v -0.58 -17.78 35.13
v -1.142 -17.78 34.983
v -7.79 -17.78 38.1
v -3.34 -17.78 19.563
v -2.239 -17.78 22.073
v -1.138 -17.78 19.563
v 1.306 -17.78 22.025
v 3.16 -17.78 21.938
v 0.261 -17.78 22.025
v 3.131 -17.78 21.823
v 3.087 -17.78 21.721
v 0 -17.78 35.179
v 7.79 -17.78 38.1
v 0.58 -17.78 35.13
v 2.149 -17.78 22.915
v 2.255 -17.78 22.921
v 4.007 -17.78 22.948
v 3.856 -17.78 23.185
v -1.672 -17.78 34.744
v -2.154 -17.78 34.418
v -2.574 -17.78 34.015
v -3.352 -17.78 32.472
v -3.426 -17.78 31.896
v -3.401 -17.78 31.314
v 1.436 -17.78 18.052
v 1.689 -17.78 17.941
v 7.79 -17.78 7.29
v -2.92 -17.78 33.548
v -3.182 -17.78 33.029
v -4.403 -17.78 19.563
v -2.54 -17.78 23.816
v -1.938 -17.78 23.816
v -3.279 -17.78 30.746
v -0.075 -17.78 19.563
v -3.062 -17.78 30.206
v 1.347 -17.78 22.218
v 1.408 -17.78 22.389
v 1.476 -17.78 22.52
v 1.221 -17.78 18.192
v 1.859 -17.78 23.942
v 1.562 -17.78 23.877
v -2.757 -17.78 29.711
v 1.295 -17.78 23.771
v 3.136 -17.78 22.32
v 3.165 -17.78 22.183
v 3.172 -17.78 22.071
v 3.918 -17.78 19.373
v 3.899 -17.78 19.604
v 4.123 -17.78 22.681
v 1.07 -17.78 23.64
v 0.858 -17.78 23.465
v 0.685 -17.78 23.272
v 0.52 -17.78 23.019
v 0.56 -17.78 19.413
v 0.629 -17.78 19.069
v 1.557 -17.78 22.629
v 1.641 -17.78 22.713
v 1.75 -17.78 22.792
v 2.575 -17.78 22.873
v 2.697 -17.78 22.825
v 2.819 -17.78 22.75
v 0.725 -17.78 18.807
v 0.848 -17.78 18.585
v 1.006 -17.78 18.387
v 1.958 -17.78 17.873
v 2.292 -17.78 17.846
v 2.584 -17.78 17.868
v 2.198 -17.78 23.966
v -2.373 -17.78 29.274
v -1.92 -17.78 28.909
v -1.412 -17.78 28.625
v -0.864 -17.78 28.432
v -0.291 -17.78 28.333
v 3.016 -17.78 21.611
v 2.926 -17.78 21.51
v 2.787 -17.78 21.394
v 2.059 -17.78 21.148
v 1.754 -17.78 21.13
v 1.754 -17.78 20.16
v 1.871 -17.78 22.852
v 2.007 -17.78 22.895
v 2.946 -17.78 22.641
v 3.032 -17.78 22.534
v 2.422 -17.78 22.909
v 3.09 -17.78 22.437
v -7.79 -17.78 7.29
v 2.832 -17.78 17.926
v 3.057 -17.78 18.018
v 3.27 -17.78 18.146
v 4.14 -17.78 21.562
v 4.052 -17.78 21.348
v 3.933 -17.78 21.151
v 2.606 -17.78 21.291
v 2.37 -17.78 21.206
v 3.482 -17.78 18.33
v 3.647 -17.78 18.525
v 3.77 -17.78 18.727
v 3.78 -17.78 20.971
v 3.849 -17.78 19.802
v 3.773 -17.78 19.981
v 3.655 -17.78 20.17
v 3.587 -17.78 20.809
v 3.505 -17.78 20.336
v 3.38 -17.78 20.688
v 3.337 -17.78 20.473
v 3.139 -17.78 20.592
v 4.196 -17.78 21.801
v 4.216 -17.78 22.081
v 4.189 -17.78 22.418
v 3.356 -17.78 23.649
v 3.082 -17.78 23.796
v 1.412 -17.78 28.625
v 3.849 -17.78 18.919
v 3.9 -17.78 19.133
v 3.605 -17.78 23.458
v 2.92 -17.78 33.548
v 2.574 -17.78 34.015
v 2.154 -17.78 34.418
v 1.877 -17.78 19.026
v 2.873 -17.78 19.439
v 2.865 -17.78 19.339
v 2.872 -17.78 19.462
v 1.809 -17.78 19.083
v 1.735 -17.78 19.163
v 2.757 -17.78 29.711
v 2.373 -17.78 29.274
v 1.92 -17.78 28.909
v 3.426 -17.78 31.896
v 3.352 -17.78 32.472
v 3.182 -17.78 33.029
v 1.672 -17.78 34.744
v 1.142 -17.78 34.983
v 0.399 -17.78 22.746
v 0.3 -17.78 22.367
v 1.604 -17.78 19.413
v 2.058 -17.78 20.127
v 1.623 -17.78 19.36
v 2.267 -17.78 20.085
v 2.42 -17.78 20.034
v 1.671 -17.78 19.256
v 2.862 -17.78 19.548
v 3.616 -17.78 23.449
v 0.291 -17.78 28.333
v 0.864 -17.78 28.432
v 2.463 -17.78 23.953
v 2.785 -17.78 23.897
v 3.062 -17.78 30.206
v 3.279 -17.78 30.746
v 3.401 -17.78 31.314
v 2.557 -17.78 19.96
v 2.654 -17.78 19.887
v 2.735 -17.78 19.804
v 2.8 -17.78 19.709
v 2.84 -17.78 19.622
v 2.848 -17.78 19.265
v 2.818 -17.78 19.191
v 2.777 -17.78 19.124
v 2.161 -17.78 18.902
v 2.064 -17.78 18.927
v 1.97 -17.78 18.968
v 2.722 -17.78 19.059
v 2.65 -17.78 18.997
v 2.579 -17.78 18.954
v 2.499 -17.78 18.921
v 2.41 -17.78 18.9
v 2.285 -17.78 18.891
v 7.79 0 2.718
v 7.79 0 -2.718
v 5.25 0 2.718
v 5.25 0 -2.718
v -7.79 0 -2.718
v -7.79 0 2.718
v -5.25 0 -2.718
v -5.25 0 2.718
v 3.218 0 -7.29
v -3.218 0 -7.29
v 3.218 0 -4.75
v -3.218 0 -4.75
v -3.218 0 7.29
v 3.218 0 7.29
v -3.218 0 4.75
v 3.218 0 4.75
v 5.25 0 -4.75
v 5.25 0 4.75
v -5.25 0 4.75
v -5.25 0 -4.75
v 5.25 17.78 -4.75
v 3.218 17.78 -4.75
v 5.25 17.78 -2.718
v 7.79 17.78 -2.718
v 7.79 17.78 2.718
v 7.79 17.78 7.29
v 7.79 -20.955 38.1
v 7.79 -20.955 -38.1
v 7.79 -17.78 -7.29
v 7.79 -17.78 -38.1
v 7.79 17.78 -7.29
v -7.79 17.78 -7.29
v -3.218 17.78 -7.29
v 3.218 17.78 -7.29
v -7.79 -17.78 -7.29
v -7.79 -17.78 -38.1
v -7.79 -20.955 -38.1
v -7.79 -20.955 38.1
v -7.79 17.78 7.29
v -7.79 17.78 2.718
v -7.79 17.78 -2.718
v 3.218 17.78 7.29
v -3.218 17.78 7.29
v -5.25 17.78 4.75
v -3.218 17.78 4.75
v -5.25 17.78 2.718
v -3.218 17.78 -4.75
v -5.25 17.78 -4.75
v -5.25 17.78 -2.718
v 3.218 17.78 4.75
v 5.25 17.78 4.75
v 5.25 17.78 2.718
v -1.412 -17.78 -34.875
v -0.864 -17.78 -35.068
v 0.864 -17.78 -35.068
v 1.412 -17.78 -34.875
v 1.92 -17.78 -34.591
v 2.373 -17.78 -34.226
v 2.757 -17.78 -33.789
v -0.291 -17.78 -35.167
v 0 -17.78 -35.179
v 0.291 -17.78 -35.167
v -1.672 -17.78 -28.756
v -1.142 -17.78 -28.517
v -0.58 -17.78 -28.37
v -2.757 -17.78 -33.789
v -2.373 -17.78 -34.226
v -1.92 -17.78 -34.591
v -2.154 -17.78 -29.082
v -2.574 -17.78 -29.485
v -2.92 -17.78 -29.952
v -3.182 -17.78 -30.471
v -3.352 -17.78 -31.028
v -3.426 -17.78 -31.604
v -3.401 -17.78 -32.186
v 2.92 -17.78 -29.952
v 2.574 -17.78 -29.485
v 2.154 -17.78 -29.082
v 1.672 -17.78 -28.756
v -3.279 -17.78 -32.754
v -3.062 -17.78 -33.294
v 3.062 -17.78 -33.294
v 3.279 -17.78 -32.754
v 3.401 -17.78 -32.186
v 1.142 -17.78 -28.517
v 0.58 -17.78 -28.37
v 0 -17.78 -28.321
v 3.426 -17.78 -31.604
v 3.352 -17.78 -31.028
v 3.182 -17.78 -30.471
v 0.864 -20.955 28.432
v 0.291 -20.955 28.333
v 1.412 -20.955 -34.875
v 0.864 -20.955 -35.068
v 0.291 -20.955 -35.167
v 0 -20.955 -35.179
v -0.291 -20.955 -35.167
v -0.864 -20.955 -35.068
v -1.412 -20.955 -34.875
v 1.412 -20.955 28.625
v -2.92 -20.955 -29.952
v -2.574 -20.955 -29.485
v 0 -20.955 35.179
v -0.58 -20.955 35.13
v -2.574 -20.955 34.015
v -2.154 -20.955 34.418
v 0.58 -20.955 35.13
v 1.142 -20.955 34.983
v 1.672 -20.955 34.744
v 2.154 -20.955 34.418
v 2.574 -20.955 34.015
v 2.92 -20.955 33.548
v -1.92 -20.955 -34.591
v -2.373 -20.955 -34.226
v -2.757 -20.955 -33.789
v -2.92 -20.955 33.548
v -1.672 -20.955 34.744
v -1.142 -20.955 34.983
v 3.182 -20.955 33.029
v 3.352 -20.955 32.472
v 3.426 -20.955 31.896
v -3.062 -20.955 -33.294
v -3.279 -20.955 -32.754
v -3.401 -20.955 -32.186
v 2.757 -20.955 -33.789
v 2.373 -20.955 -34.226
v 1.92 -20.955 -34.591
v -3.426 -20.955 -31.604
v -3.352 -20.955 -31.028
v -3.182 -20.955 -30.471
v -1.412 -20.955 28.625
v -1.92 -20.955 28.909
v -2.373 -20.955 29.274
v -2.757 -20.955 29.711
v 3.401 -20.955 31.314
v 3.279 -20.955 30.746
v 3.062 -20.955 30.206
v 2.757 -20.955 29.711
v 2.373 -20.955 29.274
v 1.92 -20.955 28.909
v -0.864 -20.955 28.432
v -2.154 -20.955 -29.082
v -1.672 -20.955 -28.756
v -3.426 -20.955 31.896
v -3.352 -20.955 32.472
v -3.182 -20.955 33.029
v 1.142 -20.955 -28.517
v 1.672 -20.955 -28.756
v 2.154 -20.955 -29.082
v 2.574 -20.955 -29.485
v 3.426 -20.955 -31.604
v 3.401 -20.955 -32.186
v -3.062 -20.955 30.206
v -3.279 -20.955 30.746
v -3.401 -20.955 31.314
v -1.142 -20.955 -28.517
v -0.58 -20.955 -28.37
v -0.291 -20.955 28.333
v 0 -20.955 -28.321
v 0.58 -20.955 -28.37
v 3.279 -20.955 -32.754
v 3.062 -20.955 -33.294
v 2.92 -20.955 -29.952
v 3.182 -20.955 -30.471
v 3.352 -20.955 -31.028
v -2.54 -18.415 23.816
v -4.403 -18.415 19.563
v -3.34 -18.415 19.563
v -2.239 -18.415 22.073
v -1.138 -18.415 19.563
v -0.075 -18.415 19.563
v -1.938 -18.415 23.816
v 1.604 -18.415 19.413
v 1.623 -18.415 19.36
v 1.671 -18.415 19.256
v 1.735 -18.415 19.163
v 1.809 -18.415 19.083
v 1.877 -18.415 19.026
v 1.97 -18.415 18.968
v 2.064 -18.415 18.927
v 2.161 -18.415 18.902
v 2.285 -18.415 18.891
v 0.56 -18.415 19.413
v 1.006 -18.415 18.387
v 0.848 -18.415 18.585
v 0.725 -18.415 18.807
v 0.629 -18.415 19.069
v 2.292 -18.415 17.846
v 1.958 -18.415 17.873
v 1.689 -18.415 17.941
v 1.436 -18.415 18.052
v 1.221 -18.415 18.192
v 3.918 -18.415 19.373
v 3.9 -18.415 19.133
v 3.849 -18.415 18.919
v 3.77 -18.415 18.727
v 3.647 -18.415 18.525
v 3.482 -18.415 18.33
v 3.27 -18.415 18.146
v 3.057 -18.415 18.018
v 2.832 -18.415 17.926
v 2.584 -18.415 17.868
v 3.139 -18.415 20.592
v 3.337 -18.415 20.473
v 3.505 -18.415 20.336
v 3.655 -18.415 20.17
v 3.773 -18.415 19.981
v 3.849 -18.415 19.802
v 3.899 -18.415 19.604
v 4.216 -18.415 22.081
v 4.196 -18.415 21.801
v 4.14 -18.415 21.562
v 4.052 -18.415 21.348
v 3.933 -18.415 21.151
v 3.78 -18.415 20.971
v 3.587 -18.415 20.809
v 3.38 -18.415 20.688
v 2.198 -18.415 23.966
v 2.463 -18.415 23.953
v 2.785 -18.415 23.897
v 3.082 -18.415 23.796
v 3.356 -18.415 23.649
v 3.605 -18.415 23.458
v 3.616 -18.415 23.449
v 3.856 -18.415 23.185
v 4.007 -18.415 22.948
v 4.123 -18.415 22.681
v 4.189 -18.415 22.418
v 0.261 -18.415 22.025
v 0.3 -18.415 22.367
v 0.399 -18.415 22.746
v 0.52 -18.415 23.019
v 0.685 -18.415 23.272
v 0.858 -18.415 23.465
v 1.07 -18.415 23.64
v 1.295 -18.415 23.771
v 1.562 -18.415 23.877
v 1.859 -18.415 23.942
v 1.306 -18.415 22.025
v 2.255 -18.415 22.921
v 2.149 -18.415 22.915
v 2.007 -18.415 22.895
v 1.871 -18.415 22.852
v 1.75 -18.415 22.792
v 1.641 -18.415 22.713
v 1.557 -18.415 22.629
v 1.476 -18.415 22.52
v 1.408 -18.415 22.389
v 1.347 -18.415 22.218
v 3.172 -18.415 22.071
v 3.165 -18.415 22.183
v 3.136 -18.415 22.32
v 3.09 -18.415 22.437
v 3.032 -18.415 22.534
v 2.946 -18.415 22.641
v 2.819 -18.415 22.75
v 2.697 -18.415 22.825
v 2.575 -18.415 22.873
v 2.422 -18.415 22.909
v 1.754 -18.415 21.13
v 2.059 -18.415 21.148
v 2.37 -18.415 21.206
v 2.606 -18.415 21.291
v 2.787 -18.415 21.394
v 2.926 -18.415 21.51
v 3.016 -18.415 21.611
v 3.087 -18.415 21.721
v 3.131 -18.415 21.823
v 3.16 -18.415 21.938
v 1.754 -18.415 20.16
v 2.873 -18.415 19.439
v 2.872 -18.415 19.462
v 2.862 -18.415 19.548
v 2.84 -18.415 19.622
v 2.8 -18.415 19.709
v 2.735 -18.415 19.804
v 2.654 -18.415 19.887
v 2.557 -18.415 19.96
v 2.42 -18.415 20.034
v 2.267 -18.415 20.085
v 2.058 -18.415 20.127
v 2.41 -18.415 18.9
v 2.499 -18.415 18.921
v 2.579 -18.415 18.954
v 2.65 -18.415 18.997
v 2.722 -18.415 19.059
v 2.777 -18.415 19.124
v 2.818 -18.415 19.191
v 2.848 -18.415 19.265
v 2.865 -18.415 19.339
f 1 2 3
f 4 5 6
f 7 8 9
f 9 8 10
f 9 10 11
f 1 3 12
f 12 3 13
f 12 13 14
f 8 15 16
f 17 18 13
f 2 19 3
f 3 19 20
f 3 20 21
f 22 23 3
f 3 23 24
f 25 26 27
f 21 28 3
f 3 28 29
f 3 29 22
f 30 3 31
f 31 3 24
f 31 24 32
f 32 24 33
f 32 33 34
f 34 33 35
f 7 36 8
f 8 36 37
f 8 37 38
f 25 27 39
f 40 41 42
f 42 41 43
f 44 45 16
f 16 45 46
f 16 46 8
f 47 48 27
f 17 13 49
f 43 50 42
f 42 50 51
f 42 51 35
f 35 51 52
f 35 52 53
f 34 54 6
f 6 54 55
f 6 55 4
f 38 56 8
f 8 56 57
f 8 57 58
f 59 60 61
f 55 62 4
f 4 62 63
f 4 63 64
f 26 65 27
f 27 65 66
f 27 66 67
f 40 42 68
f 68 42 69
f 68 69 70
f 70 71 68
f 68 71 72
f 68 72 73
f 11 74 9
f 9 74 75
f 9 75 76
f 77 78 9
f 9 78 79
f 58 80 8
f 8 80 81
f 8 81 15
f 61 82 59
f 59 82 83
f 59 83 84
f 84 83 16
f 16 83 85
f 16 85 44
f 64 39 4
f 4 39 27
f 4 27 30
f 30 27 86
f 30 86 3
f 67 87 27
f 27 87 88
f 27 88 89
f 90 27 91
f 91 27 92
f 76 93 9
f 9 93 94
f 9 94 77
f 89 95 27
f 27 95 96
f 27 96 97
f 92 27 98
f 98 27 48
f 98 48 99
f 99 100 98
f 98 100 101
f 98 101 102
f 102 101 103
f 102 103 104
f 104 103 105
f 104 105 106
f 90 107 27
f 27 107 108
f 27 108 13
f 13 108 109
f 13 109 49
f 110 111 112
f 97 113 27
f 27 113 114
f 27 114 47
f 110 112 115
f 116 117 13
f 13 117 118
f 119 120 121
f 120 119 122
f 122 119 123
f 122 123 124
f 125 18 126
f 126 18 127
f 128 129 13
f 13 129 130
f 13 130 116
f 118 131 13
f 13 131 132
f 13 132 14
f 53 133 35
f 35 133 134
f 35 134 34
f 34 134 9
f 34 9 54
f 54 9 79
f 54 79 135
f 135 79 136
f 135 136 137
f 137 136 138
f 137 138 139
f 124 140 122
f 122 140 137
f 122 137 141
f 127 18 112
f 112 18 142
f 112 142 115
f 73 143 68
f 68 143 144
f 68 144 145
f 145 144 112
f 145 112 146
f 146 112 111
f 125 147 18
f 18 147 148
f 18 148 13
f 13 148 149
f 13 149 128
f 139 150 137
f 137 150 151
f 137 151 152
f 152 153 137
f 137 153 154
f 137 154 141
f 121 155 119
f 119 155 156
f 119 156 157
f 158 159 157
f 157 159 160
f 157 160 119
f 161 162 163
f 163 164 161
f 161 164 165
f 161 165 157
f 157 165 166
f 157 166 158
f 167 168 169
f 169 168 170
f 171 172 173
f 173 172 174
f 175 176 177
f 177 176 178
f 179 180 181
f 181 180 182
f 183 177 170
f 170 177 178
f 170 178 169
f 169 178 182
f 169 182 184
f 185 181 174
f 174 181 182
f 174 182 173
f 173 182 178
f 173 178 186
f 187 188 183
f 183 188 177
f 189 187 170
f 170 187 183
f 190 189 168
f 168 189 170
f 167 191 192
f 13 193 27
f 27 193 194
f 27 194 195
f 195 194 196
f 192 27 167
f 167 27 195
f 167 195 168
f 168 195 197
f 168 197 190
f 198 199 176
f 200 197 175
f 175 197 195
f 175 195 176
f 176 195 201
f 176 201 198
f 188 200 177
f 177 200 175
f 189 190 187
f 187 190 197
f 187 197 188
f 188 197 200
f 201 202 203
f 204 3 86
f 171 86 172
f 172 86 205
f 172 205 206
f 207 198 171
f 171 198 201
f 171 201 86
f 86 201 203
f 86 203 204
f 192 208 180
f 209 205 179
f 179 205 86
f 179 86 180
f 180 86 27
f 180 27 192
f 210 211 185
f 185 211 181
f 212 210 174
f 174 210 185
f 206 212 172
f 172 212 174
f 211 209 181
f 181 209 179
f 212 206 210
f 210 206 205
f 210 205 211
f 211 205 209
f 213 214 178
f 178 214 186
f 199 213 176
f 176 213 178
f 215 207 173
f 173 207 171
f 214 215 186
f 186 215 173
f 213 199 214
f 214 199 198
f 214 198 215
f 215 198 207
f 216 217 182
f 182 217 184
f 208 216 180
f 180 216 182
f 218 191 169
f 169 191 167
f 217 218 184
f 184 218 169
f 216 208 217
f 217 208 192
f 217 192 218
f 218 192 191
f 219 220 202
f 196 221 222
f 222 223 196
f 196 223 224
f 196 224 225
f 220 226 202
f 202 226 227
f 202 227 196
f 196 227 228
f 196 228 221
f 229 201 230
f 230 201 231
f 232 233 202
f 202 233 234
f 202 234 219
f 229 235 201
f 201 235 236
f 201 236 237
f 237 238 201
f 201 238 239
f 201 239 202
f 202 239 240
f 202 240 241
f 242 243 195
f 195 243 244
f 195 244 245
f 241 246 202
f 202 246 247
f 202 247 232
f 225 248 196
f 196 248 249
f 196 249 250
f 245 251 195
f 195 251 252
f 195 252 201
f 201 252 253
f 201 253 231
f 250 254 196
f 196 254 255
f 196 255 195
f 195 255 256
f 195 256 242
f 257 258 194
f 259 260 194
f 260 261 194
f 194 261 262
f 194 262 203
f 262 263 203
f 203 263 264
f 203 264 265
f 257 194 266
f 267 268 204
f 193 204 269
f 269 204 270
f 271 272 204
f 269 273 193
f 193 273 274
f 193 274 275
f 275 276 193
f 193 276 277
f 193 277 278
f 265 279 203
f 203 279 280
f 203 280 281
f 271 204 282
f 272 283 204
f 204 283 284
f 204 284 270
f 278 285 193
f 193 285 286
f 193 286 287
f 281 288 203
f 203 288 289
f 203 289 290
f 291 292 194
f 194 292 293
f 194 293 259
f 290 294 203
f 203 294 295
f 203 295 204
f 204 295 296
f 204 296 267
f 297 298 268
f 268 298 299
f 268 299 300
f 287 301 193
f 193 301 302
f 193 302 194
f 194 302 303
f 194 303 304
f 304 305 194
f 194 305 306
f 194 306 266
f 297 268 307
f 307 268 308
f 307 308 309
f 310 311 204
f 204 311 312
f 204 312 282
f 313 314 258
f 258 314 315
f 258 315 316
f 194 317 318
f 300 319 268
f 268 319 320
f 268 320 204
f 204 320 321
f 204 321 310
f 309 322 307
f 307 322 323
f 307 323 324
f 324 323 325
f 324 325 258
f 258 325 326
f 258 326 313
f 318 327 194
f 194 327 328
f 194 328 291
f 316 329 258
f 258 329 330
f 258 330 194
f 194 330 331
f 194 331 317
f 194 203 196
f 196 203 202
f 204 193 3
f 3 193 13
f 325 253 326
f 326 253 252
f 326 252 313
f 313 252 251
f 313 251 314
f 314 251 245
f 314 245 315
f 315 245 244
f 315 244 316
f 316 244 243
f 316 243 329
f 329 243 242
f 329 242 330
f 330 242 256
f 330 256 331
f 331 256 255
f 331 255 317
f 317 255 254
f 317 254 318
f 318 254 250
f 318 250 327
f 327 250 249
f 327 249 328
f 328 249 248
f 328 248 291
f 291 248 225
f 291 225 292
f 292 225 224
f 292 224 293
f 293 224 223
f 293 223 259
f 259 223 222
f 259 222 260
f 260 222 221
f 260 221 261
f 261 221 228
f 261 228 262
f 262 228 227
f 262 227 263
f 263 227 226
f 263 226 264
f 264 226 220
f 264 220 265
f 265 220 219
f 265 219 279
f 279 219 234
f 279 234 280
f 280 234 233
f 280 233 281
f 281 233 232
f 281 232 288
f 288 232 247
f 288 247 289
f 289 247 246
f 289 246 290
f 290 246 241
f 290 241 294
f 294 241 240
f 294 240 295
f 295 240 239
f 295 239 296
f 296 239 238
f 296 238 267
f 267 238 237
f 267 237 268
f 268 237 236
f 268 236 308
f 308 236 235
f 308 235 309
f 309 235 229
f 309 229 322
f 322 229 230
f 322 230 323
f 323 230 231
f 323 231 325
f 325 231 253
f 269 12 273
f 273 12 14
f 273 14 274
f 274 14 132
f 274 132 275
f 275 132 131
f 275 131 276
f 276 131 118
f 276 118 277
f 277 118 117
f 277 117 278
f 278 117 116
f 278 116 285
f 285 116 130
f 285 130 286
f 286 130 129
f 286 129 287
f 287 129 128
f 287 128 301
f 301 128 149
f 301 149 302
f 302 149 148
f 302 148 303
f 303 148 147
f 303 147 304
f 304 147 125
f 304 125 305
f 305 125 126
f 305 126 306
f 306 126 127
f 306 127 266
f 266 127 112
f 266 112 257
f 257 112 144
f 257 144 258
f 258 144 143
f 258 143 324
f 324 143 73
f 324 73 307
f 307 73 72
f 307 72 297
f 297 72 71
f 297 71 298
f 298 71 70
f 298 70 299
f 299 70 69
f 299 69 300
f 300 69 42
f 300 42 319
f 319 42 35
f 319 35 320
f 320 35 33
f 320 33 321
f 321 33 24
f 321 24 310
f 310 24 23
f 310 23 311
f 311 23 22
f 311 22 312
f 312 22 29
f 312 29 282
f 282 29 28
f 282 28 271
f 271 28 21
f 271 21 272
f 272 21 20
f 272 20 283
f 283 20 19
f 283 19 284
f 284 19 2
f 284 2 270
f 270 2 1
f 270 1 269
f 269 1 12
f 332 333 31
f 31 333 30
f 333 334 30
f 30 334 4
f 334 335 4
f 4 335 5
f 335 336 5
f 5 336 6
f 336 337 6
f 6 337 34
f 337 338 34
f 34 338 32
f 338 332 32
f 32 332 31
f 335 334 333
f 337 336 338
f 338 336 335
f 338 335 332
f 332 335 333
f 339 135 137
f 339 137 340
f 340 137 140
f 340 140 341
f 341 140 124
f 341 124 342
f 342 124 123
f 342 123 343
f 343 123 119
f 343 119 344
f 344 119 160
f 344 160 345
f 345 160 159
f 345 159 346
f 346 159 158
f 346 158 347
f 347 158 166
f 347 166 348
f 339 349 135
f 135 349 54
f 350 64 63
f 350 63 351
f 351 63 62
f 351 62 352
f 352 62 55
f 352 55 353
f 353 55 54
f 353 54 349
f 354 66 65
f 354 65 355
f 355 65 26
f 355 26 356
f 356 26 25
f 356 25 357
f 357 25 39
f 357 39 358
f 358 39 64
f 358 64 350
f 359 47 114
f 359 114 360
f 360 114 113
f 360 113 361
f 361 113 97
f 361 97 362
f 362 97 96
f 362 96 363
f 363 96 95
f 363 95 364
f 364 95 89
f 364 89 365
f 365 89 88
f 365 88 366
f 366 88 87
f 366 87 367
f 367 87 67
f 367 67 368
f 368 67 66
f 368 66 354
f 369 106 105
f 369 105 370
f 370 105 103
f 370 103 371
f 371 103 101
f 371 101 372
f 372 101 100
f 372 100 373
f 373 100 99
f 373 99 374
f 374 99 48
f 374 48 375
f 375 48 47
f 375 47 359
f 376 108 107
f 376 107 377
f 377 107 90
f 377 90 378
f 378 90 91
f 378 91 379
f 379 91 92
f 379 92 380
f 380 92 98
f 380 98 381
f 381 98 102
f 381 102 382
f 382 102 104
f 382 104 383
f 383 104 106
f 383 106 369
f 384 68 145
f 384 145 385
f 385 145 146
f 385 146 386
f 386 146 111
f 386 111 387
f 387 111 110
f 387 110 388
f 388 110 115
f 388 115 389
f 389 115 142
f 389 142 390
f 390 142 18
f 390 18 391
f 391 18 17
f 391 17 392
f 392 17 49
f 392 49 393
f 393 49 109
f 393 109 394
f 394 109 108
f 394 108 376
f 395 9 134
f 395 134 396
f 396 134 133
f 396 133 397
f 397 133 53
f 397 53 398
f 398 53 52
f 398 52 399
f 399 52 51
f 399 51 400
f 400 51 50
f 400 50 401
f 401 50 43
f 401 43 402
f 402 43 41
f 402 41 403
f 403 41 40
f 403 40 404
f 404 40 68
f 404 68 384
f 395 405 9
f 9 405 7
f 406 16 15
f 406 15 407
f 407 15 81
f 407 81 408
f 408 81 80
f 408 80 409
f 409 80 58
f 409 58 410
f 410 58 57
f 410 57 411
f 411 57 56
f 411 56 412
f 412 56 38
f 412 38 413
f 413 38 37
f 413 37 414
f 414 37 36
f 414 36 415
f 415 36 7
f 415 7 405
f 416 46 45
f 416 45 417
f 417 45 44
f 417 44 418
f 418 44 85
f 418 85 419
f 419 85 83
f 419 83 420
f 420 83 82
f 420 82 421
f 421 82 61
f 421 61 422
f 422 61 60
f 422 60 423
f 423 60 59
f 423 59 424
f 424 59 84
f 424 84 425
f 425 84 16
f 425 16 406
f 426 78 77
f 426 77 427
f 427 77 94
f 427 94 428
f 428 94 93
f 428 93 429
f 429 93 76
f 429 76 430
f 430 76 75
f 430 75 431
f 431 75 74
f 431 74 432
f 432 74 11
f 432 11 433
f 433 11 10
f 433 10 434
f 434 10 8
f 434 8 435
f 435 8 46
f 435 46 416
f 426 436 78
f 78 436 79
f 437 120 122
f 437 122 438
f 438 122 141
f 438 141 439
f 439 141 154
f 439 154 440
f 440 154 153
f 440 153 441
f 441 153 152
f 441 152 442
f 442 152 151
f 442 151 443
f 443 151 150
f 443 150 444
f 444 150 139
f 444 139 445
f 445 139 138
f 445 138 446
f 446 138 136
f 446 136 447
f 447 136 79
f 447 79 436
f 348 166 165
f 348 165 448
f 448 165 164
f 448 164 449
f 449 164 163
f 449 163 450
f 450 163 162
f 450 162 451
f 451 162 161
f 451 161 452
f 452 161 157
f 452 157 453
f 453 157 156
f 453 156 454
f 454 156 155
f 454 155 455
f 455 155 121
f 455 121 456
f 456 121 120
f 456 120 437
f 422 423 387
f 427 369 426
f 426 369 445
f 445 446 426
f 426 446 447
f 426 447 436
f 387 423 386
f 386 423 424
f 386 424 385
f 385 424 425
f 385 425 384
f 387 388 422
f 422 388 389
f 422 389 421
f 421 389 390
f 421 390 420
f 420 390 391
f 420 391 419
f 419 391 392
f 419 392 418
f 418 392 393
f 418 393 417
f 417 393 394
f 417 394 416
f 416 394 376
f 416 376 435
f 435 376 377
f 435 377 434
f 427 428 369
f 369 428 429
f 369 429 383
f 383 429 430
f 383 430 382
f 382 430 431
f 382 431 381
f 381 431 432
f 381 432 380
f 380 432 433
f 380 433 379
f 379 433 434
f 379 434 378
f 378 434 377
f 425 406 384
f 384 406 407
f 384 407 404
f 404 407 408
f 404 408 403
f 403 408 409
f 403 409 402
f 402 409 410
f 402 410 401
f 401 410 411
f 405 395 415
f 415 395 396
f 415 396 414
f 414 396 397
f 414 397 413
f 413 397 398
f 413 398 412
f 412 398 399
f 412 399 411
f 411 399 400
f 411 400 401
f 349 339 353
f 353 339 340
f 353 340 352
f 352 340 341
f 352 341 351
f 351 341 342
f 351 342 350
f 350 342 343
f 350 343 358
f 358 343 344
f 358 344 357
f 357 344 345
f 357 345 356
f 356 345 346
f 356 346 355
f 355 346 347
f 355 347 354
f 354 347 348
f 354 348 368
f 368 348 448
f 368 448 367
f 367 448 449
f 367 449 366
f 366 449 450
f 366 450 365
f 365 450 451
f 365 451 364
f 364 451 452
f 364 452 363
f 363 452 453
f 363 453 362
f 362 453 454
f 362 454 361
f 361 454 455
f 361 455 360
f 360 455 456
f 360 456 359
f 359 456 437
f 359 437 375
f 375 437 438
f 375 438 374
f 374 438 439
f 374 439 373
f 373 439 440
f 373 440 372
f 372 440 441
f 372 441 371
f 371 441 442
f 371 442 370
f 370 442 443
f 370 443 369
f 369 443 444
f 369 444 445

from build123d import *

# Parameters (mm, degrees)
BOSS_EXTRUDE1_DEPTH   = 17.78
BOSS_EXTRUDE1_2_DEPTH = 17.78
BOSS_EXTRUDE1_3_DEPTH = 17.78
BOSS_EXTRUDE1_4_DEPTH = 17.78
SKETCH2_W             = 15.58
SKETCH2_H             = 14.58
BOSS_EXTRUDE2_DEPTH   = 17.78
SKETCH3_W             = 15.58
SKETCH3_H             = 76.2
SKETCH3_R             = 3.429
BOSS_EXTRUDE3_DEPTH   = 3.175
CUT_EXTRUDE3_DEPTH    = 0.635


with BuildPart() as part:
    # Sketch1 → Boss-Extrude1 (new body)
    with BuildSketch(Plane(origin=(0, 0, 0), x_dir=(1, 0, 0), z_dir=(0, 1, 0))):
        Polygon((-5.25, 4.75), (-5.25, 2.718), (-7.79, 2.718), (-7.79, 7.29), (-3.218, 7.29), (-3.218, 4.75), align=None)
    extrude(amount=BOSS_EXTRUDE1_DEPTH)



with BuildPart() as body_2:
    # Sketch1 → Boss-Extrude1 2 (new body)
    with BuildSketch(Plane(origin=(0, 0, 0), x_dir=(1, 0, 0), z_dir=(0, 1, 0))):
        Polygon((7.79, 2.718), (7.79, 7.29), (3.218, 7.29), (3.218, 4.75), (5.25, 4.75), (5.25, 2.718), align=None)
    extrude(amount=BOSS_EXTRUDE1_2_DEPTH)


with BuildPart() as body_3:
    # Sketch1 → Boss-Extrude1 3 (new body)
    with BuildSketch(Plane(origin=(0, 0, 0), x_dir=(1, 0, 0), z_dir=(0, 1, 0))):
        Polygon((5.25, -2.718), (7.79, -2.718), (7.79, -7.29), (3.218, -7.29), (3.218, -4.75), (5.25, -4.75), align=None)
    extrude(amount=BOSS_EXTRUDE1_3_DEPTH)


with BuildPart() as body_4:
    # Sketch1 → Boss-Extrude1 4 (new body)
    with BuildSketch(Plane(origin=(0, 0, 0), x_dir=(1, 0, 0), z_dir=(0, 1, 0))):
        Polygon((-5.25, -2.718), (-7.79, -2.718), (-7.79, -7.29), (-3.218, -7.29), (-3.218, -4.75), (-5.25, -4.75), align=None)
    extrude(amount=BOSS_EXTRUDE1_4_DEPTH)


with BuildPart() as part_1:
    add(part.part)

    add(body_2.part)  # Boss-Extrude2 merges body 2

    add(body_3.part)  # Boss-Extrude2 merges body 3

    add(body_4.part)  # Boss-Extrude2 merges body 4
    # Sketch2 → Boss-Extrude2 (add)
    with BuildSketch(Plane(origin=(0, 0, 0), x_dir=(-1, 0, 0), z_dir=(0, -1, 0))):
        Rectangle(SKETCH2_W, SKETCH2_H)
    extrude(amount=BOSS_EXTRUDE2_DEPTH)

    # Sketch3 → Boss-Extrude3 (add)
    with BuildSketch(Plane(origin=(0, -17.78, 0), x_dir=(-1, 0, 0), z_dir=(0, -1, 0))):
        Rectangle(SKETCH3_W, SKETCH3_H)
        with Locations(Location((0, 31.75, 0), (0, 0, 90))):
            Circle(SKETCH3_R, mode=Mode.SUBTRACT)
        with Locations(Location((0, -31.75, 0), (0, 0, 270))):
            Circle(SKETCH3_R, mode=Mode.SUBTRACT)
    extrude(amount=BOSS_EXTRUDE3_DEPTH)

    # Sketch5 → Cut-Extrude3 (cut)
    with BuildSketch(Plane(origin=(0, -17.78, 0), x_dir=(1, 0, 0), z_dir=(0, 1, 0))):
        Polygon((-4.402938034, -19.56265828), (-3.33951656, -19.56265828), (-2.238782051, -22.073125862), (-1.138047543, -19.56265828), (-0.074626068, -19.56265828), (-1.937945713, -23.816344178), (-2.539618389, -23.816344178), align=None)
        with BuildLine():
            Line((1.60446047, -19.413406143), (0.559695513, -19.413406143))
            add(Edge.make_bspline(
                [(0.559695513, -19.413406143), (0.567071951, -19.36118207), (0.581532969, -19.258800234), (0.616136251, -19.110576841), (0.65752551, -18.969976808), (0.709197886, -18.837445387), (0.769801176, -18.712746497), (0.838719113, -18.59545223), (0.916696725, -18.486066037), (0.976467391, -18.42017136), (1.006285891, -18.387297703)],
                knots=[0, 0, 0, 0, 1.111473889, 2.178970933, 3.205615836, 4.199322666, 5.174200091, 6.12565194, 7.064921805, 8, 8, 8, 8], degree=3))
            add(Edge.make_bspline(
                [(1.006285891, -18.387297703), (1.049295125, -18.343923295), (1.134061806, -18.258436894), (1.275716871, -18.148938257), (1.424197539, -18.054174633), (1.582481657, -17.979045347), (1.748106202, -17.918236894), (1.922388279, -17.877391718), (2.104615709, -17.850290583), (2.228963005, -17.847621027), (2.292419538, -17.846258707)],
                knots=[0, 0, 0, 0, 1.01925491, 2.00884431, 2.983262333, 3.955970413, 4.92937149, 5.924503185, 6.940838805, 8, 8, 8, 8], degree=3))
            add(Edge.make_bspline(
                [(2.292419538, -17.846258707), (2.34883566, -17.847590582), (2.459738389, -17.850208778), (2.622737494, -17.871226235), (2.778143501, -17.908088515), (2.927599095, -17.956285119), (3.068906271, -18.021864654), (3.205183817, -18.097988535), (3.332624133, -18.19135764), (3.451525404, -18.296855331), (3.5607589, -18.410961412), (3.655355585, -18.532931428), (3.736682053, -18.65950728), (3.803684306, -18.791740573), (3.855199933, -18.929855061), (3.890953306, -19.073052878), (3.914354757, -19.221018044), (3.916686153, -19.321587975), (3.91786859, -19.372595012)],
                knots=[0, 0, 0, 0, 1.091422571, 2.145516843, 3.172569842, 4.178562979, 5.178154469, 6.181868002, 7.194278174, 8.227918432, 9.254613415, 10.245994977, 11.209837596, 12.161663635, 13.10878368, 14.055455738, 15.013766427, 16, 16, 16, 16], degree=3))
            add(Edge.make_bspline(
                [(3.91786859, -19.372595012), (3.915442158, -19.435762981), (3.910665261, -19.56012129), (3.871467362, -19.742128915), (3.810111989, -19.916160685), (3.721478187, -20.079781634), (3.610663359, -20.232546477), (3.474697276, -20.369347828), (3.317452606, -20.492330546), (3.199406937, -20.558421473), (3.138959001, -20.592264817)],
                knots=[0, 0, 0, 0, 0.992805628, 1.954529043, 2.915727527, 3.886831945, 4.871318353, 5.87440735, 6.911542536, 8, 8, 8, 8], degree=3))
            add(Edge.make_bspline(
                [(3.138959001, -20.592264817), (3.180449537, -20.605887034), (3.26197658, -20.632654079), (3.377857468, -20.68537147), (3.488046952, -20.742982841), (3.590647607, -20.809912067), (3.686679921, -20.883452827), (3.775558471, -20.964233774), (3.857814283, -21.052078768), (3.932104567, -21.147470922), (3.998040097, -21.248884626), (4.057200536, -21.353977283), (4.105892876, -21.464342641), (4.14714135, -21.578720254), (4.178545589, -21.698138088), (4.20065698, -21.822133409), (4.213437907, -21.950423374), (4.215387216, -22.037339748), (4.216372863, -22.081288088)],
                knots=[0, 0, 0, 0, 1.059543567, 2.081955587, 3.086750234, 4.076226789, 5.052108497, 6.020845489, 6.989030705, 7.970690546, 8.952259656, 9.923888338, 10.895517021, 11.877585046, 12.873342345, 13.889638361, 14.932918083, 16, 16, 16, 16], degree=3))
            add(Edge.make_bspline(
                [(4.216372863, -22.081288088), (4.214374823, -22.145874304), (4.210435096, -22.273225169), (4.18538815, -22.460799959), (4.13875525, -22.639635857), (4.077407087, -22.811790639), (3.995575297, -22.975041849), (3.899273036, -23.13313588), (3.780898209, -23.280590074), (3.649344914, -23.421302739), (3.503247311, -23.549232393), (3.344853741, -23.660141646), (3.177647143, -23.755321519), (3.00056965, -23.832591251), (2.81368278, -23.892097783), (2.61740309, -23.935111847), (2.410905865, -23.961428562), (2.269955352, -23.964187371), (2.19797092, -23.965596314)],
                knots=[0, 0, 0, 0, 1.005138573, 1.981928558, 2.936866704, 3.876260664, 4.820238198, 5.773547, 6.751179199, 7.756627054, 8.768222608, 9.766606018, 10.760583154, 11.757261445, 12.767156078, 13.807575856, 14.880313354, 16, 16, 16, 16], degree=3))
            add(Edge.make_bspline(
                [(2.19797092, -23.965596314), (2.129874809, -23.964110822), (1.996721873, -23.961206138), (1.801957838, -23.936064626), (1.616853058, -23.895509328), (1.440935143, -23.838343272), (1.274884705, -23.764208666), (1.117195935, -23.675930985), (0.971015477, -23.568418577), (0.834714593, -23.446524755), (0.711316847, -23.309766808), (0.601028322, -23.161312666), (0.506280899, -23.000597819), (0.426686017, -22.828308906), (0.362865929, -22.644143683), (0.31252483, -22.448476657), (0.277360749, -22.240925557), (0.266651455, -22.098125985), (0.261191239, -22.025318537)],
                knots=[0, 0, 0, 0, 1.066544725, 2.085487077, 3.070979577, 4.031932826, 4.977951092, 5.916076795, 6.857635327, 7.814973522, 8.776389752, 9.738577119, 10.707772778, 11.69409279, 12.707140348, 13.757286496, 14.856535458, 16, 16, 16, 16], degree=3))
            Line((0.261191239, -22.025318537), (1.305956197, -22.025318537))
            add(Edge.make_bspline(
                [(1.305956197, -22.025318537), (1.312576763, -22.061927077), (1.325472053, -22.133231811), (1.350623524, -22.236465214), (1.383399401, -22.331756021), (1.421296469, -22.419951174), (1.462231007, -22.502208645), (1.511689719, -22.575490462), (1.566048529, -22.641786528), (1.644488688, -22.72060002), (1.756624298, -22.801577594), (1.908044521, -22.871950958), (2.076485181, -22.913198395), (2.194242, -22.918230456), (2.255106504, -22.920831357)],
                knots=[0, 0, 0, 0, 0.928156231, 1.807827665, 2.648129825, 3.438902246, 4.202261636, 4.936546065, 5.639352463, 6.338805438, 7.70633318, 9.064371875, 10.482673459, 12, 12, 12, 12], degree=3))
            add(Edge.make_bspline(
                [(2.255106504, -22.920831357), (2.287403361, -22.92027752), (2.350665678, -22.919192676), (2.443588602, -22.907168637), (2.53211077, -22.887365035), (2.616397061, -22.860452674), (2.696984046, -22.826716347), (2.772332028, -22.783215372), (2.84397679, -22.732639278), (2.911139487, -22.675778323), (2.973199203, -22.613820236), (3.024836536, -22.545212181), (3.072029323, -22.475494135), (3.106933447, -22.400104897), (3.13751698, -22.323101214), (3.156235665, -22.241688093), (3.170369616, -22.157573363), (3.171191024, -22.100008934), (3.171607906, -22.070793797)],
                knots=[0, 0, 0, 0, 1.110435564, 2.175094844, 3.216326037, 4.226890168, 5.215276772, 6.21526065, 7.213097102, 8.228249917, 9.239874822, 10.221364777, 11.178138315, 12.128914389, 13.072518965, 14.022636769, 14.996447288, 16, 16, 16, 16], degree=3))
            add(Edge.make_bspline(
                [(3.171607906, -22.070793797), (3.170501163, -22.038842067), (3.168297891, -21.975233493), (3.150296928, -21.882410155), (3.121869603, -21.793121585), (3.082380576, -21.707763195), (3.029647382, -21.626649598), (2.9674228, -21.548153411), (2.890804565, -21.47636022), (2.806744099, -21.405394826), (2.709266982, -21.343534406), (2.603120486, -21.286446328), (2.485514916, -21.241021842), (2.35932113, -21.200449362), (2.222152054, -21.170815853), (2.074859456, -21.149299038), (1.917680943, -21.133283103), (1.809335751, -21.130985354), (1.753712607, -21.129805716)],
                knots=[0, 0, 0, 0, 0.809814727, 1.612155564, 2.388397, 3.182215007, 3.988903953, 4.837162975, 5.715530372, 6.646997145, 7.623086902, 8.637258368, 9.698941581, 10.815059213, 11.996518529, 13.252603015, 14.589518788, 16, 16, 16, 16], degree=3))
            Line((1.753712607, -21.129805716), (1.753712607, -20.159666827))
            add(Edge.make_bspline(
                [(1.753712607, -20.159666827), (1.822966729, -20.153768925), (1.952527477, -20.142735117), (2.132364742, -20.116932174), (2.283764537, -20.082442292), (2.410365759, -20.040832116), (2.515487302, -19.98739381), (2.607320901, -19.92840028), (2.686412341, -19.859887916), (2.753255217, -19.783899748), (2.806727438, -19.702295581), (2.844571961, -19.616343786), (2.869562507, -19.528703818), (2.871930359, -19.468760721), (2.873103632, -19.439058854)],
                knots=[0, 0, 0, 0, 1.70044513, 3.18119609, 4.440695891, 5.496282586, 6.431922213, 7.318171381, 8.16090191, 8.983045123, 9.787564368, 10.536848927, 11.275007137, 12, 12, 12, 12], degree=3))
            add(Edge.make_bspline(
                [(2.873103632, -19.439058854), (2.8710794, -19.401162498), (2.867128528, -19.327196833), (2.83644391, -19.221336386), (2.783178889, -19.126970571), (2.71175985, -19.044297961), (2.624733268, -18.975243601), (2.522722857, -18.925111313), (2.40794225, -18.895656355), (2.327187908, -18.892602868), (2.285423344, -18.891023665)],
                knots=[0, 0, 0, 0, 1.009664648, 1.970651636, 2.907870547, 3.878035693, 4.867062054, 5.849714035, 6.887914197, 8, 8, 8, 8], degree=3))
            add(Edge.make_bspline(
                [(2.285423344, -18.891023665), (2.247568462, -18.892886959), (2.172452782, -18.896584305), (2.062611175, -18.924180317), (1.958298243, -18.970634769), (1.861674014, -19.03469272), (1.774133277, -19.111623605), (1.702287588, -19.202732269), (1.642529751, -19.302560235), (1.617199978, -19.376312658), (1.60446047, -19.413406143)],
                knots=[0, 0, 0, 0, 0.98818071, 1.960853194, 2.938124878, 3.957524365, 4.978590984, 5.968022688, 6.978025184, 8, 8, 8, 8], degree=3))
        make_face()
    extrude(amount=-CUT_EXTRUDE3_DEPTH, mode=Mode.SUBTRACT)


solid = part_1.part
